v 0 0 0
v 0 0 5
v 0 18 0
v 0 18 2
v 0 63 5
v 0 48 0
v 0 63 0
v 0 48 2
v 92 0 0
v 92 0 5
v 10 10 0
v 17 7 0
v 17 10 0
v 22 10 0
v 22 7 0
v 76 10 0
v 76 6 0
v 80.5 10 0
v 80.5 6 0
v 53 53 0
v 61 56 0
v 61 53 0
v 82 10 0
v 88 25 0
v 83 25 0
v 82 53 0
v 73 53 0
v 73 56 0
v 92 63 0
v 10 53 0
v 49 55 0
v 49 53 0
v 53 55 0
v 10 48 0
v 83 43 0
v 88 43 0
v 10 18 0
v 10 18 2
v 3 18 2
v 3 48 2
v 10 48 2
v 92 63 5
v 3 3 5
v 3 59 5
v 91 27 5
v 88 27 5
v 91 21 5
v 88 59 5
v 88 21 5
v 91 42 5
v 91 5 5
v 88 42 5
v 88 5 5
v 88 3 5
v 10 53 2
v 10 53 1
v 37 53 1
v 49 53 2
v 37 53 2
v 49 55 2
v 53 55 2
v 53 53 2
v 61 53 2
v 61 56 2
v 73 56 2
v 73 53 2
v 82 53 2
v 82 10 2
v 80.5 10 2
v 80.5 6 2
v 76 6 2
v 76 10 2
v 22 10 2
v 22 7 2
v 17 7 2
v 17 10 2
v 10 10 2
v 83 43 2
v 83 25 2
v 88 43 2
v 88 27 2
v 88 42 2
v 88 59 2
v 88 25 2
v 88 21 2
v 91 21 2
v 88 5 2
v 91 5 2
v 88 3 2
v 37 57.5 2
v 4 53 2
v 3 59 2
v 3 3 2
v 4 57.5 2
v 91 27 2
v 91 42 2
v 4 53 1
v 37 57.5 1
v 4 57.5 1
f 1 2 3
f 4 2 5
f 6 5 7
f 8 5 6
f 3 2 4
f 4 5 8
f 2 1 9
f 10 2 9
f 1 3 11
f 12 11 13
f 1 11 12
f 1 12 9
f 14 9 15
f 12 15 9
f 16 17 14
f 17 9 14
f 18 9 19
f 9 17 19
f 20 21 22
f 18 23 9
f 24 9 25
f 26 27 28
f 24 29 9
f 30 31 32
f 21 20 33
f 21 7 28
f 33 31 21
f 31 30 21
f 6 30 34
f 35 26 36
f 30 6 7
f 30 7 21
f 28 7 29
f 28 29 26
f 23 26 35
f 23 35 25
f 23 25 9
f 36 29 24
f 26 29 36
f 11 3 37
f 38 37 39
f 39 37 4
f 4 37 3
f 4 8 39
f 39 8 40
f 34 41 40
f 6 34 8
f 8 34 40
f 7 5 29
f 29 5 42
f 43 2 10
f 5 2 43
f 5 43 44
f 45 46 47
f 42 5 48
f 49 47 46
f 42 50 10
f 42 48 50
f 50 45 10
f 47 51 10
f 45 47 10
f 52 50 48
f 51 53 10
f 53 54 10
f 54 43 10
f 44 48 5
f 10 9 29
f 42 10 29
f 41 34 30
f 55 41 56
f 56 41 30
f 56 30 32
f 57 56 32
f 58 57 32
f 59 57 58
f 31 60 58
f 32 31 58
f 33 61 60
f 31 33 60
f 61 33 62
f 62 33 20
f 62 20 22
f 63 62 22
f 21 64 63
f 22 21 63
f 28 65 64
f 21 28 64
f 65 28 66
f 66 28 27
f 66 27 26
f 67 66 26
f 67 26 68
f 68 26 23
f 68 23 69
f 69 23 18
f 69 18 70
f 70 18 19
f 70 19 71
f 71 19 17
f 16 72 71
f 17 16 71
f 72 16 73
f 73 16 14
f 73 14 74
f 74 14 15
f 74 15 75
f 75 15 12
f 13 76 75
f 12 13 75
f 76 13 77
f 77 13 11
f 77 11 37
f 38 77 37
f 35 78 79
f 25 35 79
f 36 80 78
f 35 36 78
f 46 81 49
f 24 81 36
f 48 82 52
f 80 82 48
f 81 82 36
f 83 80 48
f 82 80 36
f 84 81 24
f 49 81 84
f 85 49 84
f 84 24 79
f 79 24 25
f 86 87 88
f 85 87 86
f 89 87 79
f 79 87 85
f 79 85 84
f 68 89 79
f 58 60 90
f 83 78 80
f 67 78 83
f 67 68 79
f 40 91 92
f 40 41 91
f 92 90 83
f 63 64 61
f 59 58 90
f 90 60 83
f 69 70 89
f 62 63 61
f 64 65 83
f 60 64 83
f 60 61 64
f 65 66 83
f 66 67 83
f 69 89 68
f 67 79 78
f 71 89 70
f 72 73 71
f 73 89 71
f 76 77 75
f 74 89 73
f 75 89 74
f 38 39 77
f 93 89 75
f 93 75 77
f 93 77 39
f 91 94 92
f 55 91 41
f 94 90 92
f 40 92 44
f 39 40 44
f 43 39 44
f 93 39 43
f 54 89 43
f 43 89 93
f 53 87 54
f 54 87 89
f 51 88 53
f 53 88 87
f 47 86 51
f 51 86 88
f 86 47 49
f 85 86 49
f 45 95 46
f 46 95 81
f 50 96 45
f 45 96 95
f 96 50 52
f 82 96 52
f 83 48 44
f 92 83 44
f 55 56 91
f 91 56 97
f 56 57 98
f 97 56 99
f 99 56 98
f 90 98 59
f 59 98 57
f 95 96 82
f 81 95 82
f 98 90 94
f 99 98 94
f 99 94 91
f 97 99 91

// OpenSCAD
// Globals

difference()
{
	union()
	{
		cube([92,63,5]);
	}

	union()
	{
		translate ([10,10,0]) cube ([72,43,5]);
		translate ([3,3,2]) cube ([85,56,3]);
		translate ([0,18,0]) cube ([10,30,2]); // SD Card
		translate ([88,5,2]) cube ([3,16,3]); // Ethernet Port
		translate ([88,27,2]) cube ([3,15,3]); // USB Ports
		translate ([4,53,1]) cube ([33,4.5,1]); // Soldered Pins
		translate ([61,49,0]) cube ([12,7,2]); // Soldered Pins
		translate ([49,52,0]) cube ([4,3,2]); // Soldered Pins
		translate ([83,25,0]) cube ([5,18,2]); // Soldered Pins
		translate ([76,6,0]) cube ([4.5,4.5,2]); // Soldered Pins
		translate ([17,7,0]) cube ([5,5,2]); // Soldered Pins
	}
}
